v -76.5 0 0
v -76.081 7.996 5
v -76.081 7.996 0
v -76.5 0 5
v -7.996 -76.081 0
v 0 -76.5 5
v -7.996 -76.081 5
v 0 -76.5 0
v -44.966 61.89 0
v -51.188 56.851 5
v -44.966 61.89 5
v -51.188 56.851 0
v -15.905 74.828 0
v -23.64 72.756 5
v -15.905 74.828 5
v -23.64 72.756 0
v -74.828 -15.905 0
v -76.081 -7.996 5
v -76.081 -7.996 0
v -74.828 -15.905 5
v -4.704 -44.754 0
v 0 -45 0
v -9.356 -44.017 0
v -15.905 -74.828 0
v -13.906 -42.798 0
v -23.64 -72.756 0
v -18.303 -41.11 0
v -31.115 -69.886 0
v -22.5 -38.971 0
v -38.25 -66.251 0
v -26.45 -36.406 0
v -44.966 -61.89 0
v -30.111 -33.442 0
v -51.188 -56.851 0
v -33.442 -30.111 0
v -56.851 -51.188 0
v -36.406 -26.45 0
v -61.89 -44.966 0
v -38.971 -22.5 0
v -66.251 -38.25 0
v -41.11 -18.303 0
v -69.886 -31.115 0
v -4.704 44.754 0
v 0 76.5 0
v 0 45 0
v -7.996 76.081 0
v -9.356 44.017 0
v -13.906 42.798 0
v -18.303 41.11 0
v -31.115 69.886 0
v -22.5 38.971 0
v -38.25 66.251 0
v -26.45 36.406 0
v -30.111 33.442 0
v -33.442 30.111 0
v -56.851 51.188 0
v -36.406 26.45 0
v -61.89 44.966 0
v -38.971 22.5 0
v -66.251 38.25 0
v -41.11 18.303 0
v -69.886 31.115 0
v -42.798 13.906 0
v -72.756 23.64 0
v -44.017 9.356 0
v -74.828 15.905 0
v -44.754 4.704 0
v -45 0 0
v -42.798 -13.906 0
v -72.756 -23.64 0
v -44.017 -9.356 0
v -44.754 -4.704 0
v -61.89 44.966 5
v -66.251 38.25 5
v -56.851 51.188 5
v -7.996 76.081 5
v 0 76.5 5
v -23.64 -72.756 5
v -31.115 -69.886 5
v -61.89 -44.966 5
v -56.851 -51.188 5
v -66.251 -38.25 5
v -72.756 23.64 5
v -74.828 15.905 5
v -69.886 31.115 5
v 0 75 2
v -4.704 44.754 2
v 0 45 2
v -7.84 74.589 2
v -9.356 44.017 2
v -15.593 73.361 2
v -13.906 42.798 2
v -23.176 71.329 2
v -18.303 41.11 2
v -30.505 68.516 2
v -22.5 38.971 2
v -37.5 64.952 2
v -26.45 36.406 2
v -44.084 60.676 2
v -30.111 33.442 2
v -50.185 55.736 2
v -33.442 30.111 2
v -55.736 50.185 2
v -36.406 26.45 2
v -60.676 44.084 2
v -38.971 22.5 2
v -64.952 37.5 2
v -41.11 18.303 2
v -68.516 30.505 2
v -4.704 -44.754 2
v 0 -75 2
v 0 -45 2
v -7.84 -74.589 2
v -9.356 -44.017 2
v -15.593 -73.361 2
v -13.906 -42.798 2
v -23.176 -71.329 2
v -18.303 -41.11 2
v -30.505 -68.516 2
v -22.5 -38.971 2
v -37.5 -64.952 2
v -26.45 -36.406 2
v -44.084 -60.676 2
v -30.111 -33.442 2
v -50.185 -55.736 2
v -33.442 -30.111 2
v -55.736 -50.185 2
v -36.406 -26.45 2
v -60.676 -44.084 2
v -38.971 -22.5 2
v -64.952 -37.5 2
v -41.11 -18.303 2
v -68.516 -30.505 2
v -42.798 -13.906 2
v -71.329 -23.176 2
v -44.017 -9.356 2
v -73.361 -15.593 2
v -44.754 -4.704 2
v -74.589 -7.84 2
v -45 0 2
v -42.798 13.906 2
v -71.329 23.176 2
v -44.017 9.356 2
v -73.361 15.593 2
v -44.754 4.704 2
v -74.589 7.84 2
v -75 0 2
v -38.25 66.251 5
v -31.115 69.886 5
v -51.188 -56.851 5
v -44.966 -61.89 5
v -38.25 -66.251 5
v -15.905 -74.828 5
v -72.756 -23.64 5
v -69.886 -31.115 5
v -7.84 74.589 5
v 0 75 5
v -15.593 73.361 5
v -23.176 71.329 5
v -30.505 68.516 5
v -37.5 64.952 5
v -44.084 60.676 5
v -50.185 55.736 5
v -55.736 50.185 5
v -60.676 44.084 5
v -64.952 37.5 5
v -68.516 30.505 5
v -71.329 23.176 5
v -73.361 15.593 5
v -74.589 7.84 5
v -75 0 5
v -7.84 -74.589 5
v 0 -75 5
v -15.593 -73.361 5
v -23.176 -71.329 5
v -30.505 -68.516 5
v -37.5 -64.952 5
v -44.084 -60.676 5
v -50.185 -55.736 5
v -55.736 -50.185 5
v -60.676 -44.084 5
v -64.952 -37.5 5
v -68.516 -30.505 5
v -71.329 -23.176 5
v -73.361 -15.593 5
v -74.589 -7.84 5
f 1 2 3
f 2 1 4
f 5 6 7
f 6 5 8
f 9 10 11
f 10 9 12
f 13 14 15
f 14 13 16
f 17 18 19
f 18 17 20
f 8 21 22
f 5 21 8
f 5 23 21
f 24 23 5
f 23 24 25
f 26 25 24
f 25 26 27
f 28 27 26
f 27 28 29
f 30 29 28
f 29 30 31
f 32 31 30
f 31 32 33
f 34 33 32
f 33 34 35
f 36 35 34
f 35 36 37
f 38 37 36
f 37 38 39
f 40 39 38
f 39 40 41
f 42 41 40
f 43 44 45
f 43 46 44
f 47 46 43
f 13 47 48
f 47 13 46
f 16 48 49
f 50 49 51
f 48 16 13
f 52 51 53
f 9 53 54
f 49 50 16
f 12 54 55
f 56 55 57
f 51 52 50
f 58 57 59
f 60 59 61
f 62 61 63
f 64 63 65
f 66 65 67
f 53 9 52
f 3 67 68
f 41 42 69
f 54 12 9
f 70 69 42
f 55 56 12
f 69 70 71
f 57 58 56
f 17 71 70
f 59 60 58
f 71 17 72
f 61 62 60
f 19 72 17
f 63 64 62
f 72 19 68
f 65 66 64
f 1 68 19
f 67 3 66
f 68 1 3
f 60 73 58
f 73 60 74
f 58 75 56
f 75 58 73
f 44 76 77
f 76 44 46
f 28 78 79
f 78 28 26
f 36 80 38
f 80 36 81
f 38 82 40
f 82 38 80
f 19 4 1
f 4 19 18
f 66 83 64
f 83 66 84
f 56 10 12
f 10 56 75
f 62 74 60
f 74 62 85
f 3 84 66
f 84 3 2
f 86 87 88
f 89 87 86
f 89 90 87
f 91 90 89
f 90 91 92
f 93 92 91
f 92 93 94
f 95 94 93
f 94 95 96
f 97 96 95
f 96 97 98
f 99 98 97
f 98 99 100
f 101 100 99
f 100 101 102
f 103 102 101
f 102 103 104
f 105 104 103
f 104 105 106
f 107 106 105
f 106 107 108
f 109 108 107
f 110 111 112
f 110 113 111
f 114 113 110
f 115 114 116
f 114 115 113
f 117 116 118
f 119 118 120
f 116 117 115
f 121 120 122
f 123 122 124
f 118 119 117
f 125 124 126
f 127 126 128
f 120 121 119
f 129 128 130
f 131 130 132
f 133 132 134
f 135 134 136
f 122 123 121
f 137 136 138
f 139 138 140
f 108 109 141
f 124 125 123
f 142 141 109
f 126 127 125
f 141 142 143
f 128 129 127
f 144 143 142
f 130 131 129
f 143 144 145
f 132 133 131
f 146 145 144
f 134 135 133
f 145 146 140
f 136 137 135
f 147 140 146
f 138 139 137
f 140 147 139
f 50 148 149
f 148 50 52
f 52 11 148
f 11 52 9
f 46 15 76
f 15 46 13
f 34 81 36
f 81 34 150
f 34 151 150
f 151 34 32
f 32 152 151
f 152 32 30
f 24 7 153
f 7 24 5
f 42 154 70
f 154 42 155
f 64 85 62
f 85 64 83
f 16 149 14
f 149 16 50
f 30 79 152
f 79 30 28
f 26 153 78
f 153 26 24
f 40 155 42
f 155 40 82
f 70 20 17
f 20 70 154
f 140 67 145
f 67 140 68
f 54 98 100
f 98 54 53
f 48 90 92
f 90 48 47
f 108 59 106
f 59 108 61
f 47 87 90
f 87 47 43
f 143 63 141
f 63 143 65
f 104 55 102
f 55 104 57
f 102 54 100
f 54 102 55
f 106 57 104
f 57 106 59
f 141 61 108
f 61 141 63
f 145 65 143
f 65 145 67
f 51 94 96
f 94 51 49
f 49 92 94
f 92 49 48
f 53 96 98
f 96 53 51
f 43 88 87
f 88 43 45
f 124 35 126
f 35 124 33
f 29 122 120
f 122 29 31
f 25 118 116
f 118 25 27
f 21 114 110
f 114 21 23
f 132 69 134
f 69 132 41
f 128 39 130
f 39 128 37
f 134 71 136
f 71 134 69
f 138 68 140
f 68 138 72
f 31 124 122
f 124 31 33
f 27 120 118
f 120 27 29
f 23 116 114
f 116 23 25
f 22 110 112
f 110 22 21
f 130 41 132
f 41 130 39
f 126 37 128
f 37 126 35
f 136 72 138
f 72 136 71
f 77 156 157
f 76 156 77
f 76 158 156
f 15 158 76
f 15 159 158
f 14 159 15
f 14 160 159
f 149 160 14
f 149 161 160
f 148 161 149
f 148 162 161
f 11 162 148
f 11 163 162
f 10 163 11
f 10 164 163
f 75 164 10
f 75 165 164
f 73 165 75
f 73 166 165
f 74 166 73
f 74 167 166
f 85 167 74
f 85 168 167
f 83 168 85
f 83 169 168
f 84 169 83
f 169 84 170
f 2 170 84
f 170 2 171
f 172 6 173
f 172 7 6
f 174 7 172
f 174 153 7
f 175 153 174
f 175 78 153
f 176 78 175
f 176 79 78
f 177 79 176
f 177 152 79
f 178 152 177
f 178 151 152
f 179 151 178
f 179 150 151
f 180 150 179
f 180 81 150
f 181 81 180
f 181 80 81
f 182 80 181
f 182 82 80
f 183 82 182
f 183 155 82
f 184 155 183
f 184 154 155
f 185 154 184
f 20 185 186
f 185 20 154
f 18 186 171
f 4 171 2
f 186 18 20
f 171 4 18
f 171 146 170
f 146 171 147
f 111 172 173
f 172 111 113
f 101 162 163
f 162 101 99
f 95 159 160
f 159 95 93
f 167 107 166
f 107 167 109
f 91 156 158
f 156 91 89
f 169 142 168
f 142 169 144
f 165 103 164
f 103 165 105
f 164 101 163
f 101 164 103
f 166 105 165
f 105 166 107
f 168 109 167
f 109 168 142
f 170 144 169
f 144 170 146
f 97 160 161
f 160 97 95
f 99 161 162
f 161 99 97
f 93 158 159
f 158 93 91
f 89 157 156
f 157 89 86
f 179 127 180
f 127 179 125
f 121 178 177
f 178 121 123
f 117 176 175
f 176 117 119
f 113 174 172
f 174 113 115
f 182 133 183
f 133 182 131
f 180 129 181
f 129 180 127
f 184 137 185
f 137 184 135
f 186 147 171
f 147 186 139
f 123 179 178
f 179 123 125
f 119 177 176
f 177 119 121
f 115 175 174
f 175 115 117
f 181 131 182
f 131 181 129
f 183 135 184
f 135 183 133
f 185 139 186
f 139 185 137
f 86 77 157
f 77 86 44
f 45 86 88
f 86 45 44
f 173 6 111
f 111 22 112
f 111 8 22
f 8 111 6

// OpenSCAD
include <../../lib/relativity.scad/relativity.scad>

$fn=60;

module ring(d_in, d_out, h) {
  differed("hole", "not(hole)") {
    rod(d=d_out, h=h, anchor=bottom);
    rod(d=d_in, h=h, anchor=bottom, $class="hole");
  }
}

intersection() {
  union() {
    ring(90, 153, 2);
    ring(150, 153, 5);
  }
  box([200, 200, 10], anchor=x);
}
